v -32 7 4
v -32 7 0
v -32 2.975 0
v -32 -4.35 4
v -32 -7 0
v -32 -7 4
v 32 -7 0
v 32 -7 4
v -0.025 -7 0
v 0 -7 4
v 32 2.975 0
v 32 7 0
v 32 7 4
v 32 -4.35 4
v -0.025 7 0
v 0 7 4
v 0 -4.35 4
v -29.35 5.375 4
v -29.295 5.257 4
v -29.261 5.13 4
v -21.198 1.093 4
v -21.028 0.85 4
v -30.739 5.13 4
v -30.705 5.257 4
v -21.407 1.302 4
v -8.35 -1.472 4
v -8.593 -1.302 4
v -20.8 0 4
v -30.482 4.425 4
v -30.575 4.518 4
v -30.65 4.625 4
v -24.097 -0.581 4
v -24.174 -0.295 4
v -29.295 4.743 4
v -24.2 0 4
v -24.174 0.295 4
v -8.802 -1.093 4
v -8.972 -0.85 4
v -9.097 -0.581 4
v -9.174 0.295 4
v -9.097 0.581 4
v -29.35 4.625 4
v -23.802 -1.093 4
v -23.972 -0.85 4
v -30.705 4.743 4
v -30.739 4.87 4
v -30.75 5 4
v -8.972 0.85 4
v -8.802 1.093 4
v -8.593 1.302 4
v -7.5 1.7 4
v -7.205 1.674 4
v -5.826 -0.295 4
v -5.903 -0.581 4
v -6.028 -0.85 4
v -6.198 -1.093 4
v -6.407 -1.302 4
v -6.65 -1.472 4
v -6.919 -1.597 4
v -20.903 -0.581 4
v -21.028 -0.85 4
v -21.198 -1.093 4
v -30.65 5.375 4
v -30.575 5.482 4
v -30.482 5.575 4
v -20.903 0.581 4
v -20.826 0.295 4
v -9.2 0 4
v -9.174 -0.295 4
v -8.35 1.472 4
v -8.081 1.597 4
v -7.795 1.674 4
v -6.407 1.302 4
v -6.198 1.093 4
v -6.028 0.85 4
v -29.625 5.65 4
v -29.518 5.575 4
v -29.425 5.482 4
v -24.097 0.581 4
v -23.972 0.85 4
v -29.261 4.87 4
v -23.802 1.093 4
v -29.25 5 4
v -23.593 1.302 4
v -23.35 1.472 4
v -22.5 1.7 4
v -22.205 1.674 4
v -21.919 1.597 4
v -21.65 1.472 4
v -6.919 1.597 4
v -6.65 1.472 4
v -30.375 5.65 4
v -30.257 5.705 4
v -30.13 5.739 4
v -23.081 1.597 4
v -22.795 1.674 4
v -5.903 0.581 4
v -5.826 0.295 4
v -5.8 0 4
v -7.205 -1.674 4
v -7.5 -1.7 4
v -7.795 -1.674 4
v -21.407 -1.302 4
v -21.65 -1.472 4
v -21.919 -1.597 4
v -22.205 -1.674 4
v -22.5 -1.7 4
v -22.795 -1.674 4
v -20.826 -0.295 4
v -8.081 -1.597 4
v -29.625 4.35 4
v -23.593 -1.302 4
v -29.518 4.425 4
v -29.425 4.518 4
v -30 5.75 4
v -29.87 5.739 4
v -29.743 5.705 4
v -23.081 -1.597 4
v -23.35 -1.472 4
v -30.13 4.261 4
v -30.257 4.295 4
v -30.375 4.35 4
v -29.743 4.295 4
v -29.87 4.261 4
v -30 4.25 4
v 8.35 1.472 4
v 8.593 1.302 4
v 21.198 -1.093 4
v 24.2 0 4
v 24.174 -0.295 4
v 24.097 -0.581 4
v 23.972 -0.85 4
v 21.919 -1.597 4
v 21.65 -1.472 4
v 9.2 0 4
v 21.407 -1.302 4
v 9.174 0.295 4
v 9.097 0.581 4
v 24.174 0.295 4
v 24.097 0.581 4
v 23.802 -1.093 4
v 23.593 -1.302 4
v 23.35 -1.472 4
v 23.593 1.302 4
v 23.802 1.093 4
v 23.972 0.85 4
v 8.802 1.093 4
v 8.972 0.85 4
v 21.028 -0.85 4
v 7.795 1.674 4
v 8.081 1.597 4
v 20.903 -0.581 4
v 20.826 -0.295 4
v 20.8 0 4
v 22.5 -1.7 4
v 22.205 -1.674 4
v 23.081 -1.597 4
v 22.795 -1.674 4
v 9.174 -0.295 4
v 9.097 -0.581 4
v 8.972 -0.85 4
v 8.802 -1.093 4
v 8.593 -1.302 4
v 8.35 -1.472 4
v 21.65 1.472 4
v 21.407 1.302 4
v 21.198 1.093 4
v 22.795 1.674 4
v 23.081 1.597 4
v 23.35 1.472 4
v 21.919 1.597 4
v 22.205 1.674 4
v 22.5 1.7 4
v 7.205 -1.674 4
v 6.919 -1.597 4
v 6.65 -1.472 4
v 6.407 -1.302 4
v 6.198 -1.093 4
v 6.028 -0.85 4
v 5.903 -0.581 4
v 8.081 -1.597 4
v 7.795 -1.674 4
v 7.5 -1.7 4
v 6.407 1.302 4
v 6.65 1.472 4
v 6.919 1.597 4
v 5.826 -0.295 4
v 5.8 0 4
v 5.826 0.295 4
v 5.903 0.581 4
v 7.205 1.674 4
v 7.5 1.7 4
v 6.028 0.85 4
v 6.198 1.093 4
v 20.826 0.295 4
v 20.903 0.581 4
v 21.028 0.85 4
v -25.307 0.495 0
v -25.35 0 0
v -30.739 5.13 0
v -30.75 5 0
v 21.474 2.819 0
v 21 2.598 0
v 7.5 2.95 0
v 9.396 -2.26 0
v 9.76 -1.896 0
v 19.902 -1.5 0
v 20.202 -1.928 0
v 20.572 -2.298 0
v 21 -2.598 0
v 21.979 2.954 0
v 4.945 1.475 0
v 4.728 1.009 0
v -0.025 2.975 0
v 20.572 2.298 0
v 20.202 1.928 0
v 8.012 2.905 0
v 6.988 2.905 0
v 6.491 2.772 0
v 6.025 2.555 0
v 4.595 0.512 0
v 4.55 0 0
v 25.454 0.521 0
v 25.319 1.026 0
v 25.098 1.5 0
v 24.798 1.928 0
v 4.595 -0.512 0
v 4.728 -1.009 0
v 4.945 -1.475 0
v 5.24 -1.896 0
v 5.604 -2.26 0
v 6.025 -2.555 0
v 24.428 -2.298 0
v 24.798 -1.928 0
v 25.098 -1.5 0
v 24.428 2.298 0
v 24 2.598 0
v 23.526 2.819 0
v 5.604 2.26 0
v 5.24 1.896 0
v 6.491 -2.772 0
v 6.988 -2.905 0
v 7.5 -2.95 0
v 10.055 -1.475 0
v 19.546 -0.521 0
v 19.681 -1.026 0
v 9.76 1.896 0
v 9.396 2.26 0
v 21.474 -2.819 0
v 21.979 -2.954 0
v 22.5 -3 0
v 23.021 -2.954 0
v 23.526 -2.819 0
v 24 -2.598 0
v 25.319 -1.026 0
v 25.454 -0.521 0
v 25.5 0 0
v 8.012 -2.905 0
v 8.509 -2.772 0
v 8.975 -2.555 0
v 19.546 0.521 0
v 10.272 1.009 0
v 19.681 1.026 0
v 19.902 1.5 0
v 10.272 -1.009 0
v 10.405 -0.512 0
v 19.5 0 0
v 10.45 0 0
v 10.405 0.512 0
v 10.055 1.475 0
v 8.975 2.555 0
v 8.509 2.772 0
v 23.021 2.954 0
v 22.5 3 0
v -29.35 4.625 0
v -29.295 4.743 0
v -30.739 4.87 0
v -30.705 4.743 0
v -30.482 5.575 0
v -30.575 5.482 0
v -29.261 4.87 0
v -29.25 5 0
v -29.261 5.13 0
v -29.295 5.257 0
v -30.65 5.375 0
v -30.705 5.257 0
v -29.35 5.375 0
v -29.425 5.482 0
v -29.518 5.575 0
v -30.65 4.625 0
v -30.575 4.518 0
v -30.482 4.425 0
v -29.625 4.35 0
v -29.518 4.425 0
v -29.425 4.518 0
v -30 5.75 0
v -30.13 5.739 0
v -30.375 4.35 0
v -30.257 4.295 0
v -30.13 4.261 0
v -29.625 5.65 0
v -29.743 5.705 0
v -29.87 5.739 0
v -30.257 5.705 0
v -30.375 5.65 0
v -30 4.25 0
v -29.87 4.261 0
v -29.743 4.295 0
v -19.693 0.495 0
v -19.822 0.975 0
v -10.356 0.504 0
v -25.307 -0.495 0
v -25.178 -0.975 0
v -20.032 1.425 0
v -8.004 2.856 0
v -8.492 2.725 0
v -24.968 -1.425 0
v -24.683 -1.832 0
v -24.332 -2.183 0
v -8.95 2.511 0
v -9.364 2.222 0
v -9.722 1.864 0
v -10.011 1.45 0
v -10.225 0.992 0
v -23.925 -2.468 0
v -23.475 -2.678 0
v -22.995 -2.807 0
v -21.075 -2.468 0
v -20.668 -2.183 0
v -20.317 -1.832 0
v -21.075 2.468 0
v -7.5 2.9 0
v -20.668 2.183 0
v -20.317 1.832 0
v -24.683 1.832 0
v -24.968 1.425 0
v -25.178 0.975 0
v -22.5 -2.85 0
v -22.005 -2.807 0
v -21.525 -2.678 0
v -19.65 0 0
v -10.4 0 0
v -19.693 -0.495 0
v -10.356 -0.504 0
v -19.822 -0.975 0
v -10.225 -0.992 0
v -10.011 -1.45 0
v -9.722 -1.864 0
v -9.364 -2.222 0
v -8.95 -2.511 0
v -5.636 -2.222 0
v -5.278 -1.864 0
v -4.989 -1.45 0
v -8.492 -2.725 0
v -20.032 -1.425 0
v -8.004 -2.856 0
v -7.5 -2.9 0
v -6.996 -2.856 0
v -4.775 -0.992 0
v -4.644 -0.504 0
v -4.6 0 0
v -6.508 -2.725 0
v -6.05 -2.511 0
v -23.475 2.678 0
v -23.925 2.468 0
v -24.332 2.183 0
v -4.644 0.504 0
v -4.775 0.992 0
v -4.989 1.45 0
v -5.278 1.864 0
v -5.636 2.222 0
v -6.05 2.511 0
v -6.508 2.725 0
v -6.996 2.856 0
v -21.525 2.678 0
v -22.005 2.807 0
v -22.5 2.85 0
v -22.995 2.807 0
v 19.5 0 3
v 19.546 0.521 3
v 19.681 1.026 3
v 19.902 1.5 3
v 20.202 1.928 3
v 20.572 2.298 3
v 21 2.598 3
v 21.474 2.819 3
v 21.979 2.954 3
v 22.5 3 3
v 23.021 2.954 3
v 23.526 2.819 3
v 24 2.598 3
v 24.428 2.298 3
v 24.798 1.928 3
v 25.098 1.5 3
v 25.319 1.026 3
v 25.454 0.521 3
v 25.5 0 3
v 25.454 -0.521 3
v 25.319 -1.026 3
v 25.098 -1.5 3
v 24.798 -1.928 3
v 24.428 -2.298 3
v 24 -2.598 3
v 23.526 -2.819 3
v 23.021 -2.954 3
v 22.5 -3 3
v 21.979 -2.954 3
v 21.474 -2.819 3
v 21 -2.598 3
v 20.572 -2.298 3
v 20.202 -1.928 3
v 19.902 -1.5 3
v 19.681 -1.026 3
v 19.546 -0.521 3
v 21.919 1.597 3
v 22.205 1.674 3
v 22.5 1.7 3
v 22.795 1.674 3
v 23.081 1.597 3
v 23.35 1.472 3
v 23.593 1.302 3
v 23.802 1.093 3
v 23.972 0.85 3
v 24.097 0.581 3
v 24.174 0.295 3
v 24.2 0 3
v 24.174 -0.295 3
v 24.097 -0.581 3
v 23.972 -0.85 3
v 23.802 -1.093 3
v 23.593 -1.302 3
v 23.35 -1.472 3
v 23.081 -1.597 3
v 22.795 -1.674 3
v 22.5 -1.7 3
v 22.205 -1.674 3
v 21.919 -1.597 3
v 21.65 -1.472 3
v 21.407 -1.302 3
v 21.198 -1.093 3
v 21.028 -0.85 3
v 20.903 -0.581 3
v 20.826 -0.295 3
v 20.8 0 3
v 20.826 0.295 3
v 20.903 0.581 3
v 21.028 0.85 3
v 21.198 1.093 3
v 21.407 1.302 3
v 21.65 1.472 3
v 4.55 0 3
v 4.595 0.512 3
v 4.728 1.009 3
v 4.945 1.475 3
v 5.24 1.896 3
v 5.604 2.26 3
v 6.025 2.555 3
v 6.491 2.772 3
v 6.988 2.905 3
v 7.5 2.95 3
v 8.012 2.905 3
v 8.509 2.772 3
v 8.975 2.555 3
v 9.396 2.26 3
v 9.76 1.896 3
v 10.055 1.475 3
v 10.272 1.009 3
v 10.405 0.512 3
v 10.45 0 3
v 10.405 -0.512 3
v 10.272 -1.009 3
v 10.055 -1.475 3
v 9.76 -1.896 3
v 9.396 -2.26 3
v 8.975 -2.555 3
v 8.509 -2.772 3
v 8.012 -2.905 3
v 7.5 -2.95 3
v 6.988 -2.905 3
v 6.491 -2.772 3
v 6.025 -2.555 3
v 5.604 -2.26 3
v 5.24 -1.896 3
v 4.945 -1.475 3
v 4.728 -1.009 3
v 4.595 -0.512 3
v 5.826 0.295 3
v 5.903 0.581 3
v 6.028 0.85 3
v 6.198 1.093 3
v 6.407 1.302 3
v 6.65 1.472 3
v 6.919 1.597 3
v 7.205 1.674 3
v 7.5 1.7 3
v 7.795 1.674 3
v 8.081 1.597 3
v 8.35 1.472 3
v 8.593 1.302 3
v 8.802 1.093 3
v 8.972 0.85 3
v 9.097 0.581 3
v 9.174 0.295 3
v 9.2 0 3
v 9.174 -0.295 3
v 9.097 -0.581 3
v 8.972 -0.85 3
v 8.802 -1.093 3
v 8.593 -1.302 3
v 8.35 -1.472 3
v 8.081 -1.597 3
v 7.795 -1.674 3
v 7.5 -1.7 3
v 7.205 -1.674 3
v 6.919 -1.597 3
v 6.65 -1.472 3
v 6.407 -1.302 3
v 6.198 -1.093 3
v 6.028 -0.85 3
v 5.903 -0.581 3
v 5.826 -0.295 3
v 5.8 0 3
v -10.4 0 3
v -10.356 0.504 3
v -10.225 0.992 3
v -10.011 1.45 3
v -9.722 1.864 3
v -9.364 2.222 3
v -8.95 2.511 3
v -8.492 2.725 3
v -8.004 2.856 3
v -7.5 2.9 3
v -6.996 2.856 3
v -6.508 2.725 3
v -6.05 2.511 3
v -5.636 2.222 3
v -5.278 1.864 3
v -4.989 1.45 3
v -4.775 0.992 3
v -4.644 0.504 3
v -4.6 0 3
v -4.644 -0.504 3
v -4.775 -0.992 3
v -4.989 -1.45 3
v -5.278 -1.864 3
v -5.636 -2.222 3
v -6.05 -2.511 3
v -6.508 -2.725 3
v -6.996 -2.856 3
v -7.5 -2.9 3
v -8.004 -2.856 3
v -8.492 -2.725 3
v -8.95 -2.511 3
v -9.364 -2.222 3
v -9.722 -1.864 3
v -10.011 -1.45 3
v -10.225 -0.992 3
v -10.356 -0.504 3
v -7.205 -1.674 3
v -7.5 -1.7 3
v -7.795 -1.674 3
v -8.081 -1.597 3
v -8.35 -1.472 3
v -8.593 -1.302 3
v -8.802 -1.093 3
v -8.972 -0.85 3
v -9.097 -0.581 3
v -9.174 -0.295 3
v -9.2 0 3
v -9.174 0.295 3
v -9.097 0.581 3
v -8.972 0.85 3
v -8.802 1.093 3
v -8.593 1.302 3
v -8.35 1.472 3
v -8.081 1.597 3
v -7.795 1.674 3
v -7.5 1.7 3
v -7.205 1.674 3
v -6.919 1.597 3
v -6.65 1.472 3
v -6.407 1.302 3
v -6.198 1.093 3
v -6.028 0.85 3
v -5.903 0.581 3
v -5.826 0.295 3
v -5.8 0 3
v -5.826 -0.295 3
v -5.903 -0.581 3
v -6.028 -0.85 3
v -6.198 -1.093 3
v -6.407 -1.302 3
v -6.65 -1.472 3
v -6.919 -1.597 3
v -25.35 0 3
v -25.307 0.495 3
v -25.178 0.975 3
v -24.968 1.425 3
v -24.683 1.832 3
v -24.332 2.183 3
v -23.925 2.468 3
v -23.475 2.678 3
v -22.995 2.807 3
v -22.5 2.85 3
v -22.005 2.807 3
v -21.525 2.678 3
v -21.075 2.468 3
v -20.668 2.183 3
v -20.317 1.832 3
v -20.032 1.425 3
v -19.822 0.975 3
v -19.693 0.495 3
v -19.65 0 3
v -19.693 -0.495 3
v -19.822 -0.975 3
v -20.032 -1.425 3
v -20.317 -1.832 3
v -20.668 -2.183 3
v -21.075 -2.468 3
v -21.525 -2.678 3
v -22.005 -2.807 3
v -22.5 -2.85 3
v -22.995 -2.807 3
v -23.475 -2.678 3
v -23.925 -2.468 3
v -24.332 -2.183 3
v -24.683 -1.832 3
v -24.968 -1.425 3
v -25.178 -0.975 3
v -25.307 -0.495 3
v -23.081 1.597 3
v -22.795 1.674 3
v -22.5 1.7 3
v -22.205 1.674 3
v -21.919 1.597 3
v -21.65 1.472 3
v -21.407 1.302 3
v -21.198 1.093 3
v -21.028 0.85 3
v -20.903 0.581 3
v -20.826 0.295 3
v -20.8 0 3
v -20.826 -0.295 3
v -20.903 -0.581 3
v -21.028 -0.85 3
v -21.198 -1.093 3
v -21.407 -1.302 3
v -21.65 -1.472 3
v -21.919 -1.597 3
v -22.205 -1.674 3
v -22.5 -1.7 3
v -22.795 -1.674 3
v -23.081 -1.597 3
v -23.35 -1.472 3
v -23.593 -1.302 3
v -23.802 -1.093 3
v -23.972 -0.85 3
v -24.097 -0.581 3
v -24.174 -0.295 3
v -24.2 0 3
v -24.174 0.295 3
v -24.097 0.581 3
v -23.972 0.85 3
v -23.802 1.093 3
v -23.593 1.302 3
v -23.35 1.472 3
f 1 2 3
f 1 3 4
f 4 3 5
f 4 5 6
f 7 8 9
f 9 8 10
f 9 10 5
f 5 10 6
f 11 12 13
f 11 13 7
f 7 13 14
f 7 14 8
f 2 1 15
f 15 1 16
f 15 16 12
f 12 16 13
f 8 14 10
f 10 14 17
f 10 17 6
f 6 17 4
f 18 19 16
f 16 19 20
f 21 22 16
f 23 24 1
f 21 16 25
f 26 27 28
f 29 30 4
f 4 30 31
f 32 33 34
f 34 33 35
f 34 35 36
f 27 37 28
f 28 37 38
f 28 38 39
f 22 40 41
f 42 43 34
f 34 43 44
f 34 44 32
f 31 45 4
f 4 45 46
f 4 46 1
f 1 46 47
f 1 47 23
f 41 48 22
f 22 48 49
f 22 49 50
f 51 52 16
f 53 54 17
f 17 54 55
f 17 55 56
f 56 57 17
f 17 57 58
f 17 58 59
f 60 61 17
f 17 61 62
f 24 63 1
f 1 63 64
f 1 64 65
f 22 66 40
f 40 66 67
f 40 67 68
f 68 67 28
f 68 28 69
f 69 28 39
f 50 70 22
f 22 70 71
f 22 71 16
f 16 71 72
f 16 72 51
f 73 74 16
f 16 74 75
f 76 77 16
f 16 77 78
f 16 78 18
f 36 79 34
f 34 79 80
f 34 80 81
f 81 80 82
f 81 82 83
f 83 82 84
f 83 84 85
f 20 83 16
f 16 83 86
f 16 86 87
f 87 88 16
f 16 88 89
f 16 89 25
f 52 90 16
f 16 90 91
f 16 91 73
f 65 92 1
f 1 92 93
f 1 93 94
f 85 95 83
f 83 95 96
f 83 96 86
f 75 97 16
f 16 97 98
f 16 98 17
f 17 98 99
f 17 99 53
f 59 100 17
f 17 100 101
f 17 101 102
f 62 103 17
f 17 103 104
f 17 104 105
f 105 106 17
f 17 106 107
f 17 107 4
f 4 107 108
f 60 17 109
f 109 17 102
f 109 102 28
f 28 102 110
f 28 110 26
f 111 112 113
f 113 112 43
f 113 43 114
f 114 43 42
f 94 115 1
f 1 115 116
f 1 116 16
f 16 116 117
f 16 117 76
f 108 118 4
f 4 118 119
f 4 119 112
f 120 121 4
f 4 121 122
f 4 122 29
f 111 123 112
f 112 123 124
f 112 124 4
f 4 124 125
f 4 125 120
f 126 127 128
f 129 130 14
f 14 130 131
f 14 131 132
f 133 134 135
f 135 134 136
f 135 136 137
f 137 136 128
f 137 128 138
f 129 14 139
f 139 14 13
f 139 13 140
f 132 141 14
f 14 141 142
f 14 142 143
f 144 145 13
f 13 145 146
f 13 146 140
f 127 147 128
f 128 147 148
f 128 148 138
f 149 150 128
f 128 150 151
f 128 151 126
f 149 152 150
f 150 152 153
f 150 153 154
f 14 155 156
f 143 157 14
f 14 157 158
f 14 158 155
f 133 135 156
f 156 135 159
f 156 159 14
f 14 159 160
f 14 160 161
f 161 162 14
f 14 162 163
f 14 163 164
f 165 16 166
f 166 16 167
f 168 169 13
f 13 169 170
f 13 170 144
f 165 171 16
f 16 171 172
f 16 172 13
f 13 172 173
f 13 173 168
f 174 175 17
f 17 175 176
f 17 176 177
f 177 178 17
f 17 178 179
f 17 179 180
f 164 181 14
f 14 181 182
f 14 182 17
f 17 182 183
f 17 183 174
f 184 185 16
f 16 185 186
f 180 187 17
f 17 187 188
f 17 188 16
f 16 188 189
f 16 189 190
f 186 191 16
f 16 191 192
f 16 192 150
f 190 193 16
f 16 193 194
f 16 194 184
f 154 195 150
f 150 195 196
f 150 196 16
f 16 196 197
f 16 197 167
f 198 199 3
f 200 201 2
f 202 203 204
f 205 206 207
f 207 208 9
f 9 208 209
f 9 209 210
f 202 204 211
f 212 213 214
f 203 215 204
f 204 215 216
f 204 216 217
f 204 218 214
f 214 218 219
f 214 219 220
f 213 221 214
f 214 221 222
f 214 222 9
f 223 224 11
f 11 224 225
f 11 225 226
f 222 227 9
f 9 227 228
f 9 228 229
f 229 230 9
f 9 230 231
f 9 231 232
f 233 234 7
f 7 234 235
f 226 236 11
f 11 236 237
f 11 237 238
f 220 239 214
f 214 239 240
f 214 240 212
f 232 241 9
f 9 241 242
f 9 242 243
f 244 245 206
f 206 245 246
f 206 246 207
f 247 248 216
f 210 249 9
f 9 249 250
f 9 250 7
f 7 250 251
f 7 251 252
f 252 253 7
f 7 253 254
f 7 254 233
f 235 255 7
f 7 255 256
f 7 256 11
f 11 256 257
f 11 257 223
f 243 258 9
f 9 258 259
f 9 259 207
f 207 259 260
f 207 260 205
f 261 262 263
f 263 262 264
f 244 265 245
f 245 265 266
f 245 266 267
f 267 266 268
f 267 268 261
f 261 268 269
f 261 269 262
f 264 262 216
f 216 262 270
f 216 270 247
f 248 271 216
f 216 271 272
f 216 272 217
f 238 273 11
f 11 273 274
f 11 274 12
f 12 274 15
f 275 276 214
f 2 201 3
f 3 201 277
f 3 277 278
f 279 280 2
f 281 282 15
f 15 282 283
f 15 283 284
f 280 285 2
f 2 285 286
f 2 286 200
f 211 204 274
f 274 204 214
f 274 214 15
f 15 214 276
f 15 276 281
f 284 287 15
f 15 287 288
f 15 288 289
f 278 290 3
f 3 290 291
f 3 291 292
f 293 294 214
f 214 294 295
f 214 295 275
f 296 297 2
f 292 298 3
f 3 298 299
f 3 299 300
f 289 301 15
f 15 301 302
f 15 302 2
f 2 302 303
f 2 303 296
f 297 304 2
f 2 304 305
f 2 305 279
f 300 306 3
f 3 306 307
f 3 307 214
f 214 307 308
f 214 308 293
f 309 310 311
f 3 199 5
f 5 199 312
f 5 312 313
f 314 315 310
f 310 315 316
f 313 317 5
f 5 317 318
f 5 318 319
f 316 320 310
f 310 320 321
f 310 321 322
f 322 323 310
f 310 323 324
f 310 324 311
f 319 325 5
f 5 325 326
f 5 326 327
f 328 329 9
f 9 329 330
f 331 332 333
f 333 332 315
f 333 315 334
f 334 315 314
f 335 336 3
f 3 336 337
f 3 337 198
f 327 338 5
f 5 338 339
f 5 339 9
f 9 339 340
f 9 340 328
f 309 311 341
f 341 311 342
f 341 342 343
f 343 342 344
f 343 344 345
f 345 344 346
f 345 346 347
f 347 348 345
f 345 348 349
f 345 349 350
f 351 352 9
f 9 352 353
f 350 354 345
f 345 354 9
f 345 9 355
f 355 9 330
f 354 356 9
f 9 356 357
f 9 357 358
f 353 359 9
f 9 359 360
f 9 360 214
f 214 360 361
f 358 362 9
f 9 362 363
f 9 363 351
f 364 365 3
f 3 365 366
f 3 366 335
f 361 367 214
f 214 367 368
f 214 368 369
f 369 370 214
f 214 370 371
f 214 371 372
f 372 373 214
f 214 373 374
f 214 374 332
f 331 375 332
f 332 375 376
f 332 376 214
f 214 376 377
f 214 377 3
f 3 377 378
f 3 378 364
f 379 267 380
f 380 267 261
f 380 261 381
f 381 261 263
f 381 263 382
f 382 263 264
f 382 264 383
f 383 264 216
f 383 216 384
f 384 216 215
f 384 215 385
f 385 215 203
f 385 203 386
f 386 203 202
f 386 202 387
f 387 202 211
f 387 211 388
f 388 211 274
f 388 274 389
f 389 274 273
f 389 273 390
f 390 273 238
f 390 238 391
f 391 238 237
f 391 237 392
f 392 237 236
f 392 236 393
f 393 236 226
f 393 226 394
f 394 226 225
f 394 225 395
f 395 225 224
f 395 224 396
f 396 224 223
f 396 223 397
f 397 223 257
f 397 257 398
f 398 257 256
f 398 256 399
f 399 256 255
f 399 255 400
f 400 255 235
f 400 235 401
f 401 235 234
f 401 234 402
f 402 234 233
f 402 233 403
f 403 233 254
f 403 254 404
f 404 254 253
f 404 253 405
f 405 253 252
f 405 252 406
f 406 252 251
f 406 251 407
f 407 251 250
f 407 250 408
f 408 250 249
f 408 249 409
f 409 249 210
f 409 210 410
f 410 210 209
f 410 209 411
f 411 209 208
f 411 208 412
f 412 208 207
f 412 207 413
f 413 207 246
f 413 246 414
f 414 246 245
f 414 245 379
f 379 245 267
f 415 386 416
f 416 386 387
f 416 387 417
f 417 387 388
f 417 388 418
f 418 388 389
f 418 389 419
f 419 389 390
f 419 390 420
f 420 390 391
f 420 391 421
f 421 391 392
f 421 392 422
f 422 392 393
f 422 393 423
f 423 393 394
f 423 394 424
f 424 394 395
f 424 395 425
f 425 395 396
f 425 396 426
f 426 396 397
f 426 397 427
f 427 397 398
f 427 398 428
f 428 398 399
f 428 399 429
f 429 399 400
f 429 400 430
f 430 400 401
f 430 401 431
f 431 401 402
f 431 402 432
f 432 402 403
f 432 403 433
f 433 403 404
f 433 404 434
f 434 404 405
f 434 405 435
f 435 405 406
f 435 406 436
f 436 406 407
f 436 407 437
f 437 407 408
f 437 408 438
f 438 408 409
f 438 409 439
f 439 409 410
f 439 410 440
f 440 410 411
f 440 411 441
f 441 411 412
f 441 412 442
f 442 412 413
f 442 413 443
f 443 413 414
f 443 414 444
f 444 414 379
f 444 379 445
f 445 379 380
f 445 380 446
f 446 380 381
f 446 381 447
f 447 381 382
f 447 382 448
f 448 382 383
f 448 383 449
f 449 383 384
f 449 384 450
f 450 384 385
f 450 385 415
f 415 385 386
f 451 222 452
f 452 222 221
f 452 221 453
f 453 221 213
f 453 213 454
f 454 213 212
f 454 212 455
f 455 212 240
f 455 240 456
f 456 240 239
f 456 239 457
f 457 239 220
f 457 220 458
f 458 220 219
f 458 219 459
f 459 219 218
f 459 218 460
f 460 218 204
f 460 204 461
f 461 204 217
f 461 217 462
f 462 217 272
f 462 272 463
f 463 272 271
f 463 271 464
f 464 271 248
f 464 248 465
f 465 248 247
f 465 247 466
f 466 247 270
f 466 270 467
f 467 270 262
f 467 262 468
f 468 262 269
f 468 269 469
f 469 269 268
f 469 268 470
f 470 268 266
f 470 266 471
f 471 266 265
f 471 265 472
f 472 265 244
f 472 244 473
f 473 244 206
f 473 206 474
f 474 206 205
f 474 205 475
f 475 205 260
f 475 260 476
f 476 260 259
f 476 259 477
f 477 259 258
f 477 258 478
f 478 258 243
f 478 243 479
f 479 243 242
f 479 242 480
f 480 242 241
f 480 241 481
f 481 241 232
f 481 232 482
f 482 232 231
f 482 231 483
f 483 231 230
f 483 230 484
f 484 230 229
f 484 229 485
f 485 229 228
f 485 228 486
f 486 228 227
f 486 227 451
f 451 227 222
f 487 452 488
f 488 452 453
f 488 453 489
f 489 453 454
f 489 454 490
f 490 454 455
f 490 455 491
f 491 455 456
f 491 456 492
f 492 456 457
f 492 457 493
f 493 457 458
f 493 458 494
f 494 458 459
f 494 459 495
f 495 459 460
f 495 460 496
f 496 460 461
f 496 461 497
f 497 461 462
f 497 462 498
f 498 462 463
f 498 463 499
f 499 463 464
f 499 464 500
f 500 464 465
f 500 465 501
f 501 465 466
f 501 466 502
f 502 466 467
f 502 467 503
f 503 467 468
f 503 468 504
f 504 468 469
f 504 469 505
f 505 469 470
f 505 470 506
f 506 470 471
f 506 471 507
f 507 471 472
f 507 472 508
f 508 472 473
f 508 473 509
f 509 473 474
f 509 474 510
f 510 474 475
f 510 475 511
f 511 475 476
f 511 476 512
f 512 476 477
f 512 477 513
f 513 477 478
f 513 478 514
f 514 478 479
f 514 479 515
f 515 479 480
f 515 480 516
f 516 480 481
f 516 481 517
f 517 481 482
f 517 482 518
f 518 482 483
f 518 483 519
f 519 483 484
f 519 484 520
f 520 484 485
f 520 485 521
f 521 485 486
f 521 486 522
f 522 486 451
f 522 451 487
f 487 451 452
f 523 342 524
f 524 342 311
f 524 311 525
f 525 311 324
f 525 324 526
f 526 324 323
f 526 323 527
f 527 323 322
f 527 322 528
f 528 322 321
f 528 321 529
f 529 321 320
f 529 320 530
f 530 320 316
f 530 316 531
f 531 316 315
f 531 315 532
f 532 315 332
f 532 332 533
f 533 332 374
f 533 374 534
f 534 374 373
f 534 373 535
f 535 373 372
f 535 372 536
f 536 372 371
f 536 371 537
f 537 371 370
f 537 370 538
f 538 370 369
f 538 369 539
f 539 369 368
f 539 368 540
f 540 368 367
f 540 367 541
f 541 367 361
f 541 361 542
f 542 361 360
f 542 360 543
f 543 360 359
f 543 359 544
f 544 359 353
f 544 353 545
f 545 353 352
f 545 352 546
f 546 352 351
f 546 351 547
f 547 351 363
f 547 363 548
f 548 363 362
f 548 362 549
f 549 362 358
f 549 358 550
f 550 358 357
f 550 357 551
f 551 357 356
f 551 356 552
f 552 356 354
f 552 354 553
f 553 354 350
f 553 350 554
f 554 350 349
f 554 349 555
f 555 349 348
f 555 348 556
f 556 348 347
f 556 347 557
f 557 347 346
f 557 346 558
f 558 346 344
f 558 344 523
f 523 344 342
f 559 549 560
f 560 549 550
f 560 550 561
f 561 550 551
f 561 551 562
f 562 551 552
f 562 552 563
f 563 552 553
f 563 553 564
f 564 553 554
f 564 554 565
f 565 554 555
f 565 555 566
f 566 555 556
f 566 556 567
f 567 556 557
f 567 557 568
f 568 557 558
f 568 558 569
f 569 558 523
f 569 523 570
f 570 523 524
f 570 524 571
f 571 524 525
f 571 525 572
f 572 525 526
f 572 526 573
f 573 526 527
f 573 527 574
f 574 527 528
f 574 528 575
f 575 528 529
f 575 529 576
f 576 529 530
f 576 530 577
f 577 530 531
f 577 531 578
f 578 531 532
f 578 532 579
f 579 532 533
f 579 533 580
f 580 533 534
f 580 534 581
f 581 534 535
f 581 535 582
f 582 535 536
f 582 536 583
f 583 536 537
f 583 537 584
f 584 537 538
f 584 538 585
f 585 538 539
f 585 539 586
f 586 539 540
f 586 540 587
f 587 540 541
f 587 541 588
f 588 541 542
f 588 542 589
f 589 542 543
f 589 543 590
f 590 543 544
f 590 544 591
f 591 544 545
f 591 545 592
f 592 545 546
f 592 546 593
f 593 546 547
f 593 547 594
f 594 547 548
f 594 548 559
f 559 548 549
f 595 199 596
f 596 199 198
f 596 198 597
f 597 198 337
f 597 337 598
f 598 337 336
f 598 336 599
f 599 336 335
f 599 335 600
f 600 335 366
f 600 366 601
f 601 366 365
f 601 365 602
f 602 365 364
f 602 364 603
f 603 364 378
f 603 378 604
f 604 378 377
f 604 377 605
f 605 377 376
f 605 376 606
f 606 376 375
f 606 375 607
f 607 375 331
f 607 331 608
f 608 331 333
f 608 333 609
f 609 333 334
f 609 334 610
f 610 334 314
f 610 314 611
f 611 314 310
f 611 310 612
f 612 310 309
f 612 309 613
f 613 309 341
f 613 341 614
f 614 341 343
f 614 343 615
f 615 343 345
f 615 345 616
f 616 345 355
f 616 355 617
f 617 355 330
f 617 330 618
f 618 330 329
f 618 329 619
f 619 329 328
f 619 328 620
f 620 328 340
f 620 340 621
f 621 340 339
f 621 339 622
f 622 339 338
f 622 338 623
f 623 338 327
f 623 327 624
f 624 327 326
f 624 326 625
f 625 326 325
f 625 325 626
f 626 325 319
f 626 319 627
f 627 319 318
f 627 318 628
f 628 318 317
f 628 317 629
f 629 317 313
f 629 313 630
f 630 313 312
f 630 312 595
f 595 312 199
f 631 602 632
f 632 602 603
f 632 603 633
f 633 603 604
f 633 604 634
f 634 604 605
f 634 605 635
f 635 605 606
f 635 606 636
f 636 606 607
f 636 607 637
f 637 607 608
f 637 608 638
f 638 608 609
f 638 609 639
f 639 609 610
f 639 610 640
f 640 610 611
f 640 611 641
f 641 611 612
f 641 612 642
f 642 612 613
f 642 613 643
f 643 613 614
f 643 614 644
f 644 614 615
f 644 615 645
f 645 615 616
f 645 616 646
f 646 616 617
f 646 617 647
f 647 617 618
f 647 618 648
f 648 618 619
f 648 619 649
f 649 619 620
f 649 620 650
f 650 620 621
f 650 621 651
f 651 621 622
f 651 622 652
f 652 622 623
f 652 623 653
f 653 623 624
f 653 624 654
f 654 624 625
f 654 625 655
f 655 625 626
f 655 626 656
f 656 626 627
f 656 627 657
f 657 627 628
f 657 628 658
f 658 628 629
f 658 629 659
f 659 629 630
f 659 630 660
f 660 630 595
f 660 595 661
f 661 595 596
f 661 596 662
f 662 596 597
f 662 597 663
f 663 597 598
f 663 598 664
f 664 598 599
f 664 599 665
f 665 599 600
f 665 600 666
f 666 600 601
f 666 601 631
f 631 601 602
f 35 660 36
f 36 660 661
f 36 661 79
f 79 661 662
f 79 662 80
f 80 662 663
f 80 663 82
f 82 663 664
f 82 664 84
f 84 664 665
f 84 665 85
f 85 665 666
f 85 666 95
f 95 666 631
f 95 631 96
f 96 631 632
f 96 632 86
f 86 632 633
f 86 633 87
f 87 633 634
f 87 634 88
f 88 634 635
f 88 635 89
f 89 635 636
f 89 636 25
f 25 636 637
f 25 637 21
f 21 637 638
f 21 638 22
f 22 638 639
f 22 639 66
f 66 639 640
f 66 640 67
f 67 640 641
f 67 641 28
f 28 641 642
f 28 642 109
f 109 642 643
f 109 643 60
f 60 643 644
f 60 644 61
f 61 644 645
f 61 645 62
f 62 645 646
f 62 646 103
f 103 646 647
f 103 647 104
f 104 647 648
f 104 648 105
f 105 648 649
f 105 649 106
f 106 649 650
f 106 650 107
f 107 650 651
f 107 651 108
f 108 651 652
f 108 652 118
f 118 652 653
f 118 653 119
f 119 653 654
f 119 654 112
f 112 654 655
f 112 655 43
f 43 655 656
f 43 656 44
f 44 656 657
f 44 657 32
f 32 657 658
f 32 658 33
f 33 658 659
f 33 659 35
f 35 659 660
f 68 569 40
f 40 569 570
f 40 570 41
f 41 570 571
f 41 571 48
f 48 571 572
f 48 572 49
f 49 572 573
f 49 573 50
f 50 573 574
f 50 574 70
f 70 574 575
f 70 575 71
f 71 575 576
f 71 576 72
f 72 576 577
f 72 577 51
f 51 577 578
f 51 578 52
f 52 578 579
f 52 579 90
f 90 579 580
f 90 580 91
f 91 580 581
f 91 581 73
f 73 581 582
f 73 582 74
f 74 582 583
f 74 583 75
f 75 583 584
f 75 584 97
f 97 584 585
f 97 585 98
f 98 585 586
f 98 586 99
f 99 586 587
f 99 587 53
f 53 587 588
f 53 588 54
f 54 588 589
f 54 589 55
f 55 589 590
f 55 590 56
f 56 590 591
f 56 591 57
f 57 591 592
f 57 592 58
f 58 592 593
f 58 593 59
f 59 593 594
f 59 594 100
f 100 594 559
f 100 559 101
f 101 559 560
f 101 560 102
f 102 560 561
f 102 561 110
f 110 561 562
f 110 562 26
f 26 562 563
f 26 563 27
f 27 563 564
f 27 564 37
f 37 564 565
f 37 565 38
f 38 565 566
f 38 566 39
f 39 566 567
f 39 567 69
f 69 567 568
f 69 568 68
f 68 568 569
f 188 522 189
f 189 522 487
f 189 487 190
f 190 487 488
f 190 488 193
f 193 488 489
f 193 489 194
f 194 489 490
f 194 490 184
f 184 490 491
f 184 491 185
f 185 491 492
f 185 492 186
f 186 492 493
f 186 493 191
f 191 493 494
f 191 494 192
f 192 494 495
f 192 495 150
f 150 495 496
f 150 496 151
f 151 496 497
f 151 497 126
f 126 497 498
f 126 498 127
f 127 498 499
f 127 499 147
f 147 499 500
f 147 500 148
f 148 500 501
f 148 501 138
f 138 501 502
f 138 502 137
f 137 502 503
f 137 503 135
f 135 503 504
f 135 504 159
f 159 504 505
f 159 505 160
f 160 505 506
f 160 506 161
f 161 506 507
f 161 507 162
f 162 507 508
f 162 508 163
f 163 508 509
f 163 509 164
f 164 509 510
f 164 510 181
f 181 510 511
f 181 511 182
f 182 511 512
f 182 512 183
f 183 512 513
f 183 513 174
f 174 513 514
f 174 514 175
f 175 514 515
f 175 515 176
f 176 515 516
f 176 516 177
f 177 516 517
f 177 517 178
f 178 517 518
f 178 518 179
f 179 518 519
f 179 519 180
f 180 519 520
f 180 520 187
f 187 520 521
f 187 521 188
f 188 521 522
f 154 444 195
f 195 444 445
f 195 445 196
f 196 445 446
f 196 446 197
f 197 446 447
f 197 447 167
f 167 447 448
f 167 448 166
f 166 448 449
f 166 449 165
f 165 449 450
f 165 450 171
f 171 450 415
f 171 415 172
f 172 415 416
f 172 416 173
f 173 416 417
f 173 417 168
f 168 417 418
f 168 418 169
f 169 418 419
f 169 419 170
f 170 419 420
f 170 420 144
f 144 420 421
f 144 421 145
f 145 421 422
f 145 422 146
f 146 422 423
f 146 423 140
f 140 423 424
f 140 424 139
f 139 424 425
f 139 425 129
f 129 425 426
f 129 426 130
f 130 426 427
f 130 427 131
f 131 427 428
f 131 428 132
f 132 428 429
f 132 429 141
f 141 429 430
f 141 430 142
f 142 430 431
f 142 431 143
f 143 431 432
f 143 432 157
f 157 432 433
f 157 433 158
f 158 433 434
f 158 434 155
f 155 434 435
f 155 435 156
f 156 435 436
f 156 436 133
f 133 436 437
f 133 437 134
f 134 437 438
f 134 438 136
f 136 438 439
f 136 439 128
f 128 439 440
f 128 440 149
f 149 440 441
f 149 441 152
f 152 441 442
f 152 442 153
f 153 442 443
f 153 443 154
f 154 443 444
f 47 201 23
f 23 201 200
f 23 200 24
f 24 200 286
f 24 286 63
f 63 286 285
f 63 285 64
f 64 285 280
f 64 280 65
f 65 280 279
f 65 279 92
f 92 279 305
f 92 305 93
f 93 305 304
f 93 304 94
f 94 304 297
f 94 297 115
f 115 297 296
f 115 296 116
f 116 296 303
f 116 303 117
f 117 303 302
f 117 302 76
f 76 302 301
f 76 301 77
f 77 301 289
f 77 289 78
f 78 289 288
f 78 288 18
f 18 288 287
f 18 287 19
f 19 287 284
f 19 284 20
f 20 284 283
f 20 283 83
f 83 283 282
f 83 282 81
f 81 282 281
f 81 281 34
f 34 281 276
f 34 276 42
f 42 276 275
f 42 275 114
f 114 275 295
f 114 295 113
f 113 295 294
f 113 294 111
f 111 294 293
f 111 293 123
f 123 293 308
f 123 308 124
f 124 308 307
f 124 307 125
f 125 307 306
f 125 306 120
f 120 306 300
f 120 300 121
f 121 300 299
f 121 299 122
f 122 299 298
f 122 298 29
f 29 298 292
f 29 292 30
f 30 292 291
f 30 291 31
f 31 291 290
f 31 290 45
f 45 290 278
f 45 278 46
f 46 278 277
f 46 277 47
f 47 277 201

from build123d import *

# Parameters (mm, degrees)
COUPON_BAR_64X14X4_PROFILE_W                   = 64
COUPON_BAR_64X14X4_PROFILE_H                   = 14
COUPON_BAR_64X14X4_DEPTH                       = 4
PRESS_SOCKETS_5P70_5P80_5P90_6P00_DE_2_R       = 2.85
PRESS_SOCKETS_5P70_5P80_5P90_6P00_DE_2_R_2     = 2.9
PRESS_SOCKETS_5P70_5P80_5P90_6P00_DE_2_R_3     = 2.95
PRESS_SOCKETS_5P70_5P80_5P90_6P00_DE_2_R_4     = 3
PRESS_SOCKETS_5P70_5P80_5P90_6P00_DEPTH3_DEPTH = 3
M3_CENTRE_SCREW_CLEARANCE_START                = -50
M3_CENTRE_SCREW_CLEARANCE_PROFILE_R            = 1.7
M3_CENTRE_SCREW_CLEARANCE_DEPTH                = 84
ORIENTATION_MARK_AT_SMALLEST_SOCKET_START      = -50
ORIENTATION_MARK_AT_SMALLEST_SOCKET_PROF_R     = 0.75
ORIENTATION_MARK_AT_SMALLEST_SOCKET_DEPTH      = 84


with BuildPart() as part:
    # Coupon_bar_64x14x4_profile → Coupon_bar_64x14x4 (new body)
    with BuildSketch(Plane.XY):
        Rectangle(COUPON_BAR_64X14X4_PROFILE_W, COUPON_BAR_64X14X4_PROFILE_H)
    extrude(amount=COUPON_BAR_64X14X4_DEPTH)

    # Press_sockets_5p70_5p80_5p90_6p00_de 2 → Press_sockets_5p70_5p80_5p90_6p00_depth3 (cut)
    with BuildSketch(Plane.XY):
        with Locations((-22.5, 0)):
            Circle(PRESS_SOCKETS_5P70_5P80_5P90_6P00_DE_2_R)
        with Locations((-7.5, 0)):
            Circle(PRESS_SOCKETS_5P70_5P80_5P90_6P00_DE_2_R_2)
        with Locations((7.5, 0)):
            Circle(PRESS_SOCKETS_5P70_5P80_5P90_6P00_DE_2_R_3)
        with Locations((22.5, 0)):
            Circle(PRESS_SOCKETS_5P70_5P80_5P90_6P00_DE_2_R_4)
    extrude(amount=PRESS_SOCKETS_5P70_5P80_5P90_6P00_DEPTH3_DEPTH, mode=Mode.SUBTRACT)

    # M3_centre_screw_clearance_profile → M3_centre_screw_clearance (cut, through all)
    with BuildSketch(Plane.XY.offset(M3_CENTRE_SCREW_CLEARANCE_START)):
        with Locations((-22.5, 0)):
            Circle(M3_CENTRE_SCREW_CLEARANCE_PROFILE_R)
        with Locations((-7.5, 0)):
            Circle(M3_CENTRE_SCREW_CLEARANCE_PROFILE_R)
        with Locations((7.5, 0)):
            Circle(M3_CENTRE_SCREW_CLEARANCE_PROFILE_R)
        with Locations((22.5, 0)):
            Circle(M3_CENTRE_SCREW_CLEARANCE_PROFILE_R)
    extrude(amount=M3_CENTRE_SCREW_CLEARANCE_DEPTH, mode=Mode.SUBTRACT)

    # Orientation_mark_at_smallest_socket_profile → Orientation_mark_at_smallest_socket (cut, through all)
    with BuildSketch(Plane.XY.offset(ORIENTATION_MARK_AT_SMALLEST_SOCKET_START)):
        with Locations(Location((-30, 5, 0), (0, 0, 180))):
            Circle(ORIENTATION_MARK_AT_SMALLEST_SOCKET_PROF_R)
    extrude(amount=ORIENTATION_MARK_AT_SMALLEST_SOCKET_DEPTH, mode=Mode.SUBTRACT)


solid = part.part
